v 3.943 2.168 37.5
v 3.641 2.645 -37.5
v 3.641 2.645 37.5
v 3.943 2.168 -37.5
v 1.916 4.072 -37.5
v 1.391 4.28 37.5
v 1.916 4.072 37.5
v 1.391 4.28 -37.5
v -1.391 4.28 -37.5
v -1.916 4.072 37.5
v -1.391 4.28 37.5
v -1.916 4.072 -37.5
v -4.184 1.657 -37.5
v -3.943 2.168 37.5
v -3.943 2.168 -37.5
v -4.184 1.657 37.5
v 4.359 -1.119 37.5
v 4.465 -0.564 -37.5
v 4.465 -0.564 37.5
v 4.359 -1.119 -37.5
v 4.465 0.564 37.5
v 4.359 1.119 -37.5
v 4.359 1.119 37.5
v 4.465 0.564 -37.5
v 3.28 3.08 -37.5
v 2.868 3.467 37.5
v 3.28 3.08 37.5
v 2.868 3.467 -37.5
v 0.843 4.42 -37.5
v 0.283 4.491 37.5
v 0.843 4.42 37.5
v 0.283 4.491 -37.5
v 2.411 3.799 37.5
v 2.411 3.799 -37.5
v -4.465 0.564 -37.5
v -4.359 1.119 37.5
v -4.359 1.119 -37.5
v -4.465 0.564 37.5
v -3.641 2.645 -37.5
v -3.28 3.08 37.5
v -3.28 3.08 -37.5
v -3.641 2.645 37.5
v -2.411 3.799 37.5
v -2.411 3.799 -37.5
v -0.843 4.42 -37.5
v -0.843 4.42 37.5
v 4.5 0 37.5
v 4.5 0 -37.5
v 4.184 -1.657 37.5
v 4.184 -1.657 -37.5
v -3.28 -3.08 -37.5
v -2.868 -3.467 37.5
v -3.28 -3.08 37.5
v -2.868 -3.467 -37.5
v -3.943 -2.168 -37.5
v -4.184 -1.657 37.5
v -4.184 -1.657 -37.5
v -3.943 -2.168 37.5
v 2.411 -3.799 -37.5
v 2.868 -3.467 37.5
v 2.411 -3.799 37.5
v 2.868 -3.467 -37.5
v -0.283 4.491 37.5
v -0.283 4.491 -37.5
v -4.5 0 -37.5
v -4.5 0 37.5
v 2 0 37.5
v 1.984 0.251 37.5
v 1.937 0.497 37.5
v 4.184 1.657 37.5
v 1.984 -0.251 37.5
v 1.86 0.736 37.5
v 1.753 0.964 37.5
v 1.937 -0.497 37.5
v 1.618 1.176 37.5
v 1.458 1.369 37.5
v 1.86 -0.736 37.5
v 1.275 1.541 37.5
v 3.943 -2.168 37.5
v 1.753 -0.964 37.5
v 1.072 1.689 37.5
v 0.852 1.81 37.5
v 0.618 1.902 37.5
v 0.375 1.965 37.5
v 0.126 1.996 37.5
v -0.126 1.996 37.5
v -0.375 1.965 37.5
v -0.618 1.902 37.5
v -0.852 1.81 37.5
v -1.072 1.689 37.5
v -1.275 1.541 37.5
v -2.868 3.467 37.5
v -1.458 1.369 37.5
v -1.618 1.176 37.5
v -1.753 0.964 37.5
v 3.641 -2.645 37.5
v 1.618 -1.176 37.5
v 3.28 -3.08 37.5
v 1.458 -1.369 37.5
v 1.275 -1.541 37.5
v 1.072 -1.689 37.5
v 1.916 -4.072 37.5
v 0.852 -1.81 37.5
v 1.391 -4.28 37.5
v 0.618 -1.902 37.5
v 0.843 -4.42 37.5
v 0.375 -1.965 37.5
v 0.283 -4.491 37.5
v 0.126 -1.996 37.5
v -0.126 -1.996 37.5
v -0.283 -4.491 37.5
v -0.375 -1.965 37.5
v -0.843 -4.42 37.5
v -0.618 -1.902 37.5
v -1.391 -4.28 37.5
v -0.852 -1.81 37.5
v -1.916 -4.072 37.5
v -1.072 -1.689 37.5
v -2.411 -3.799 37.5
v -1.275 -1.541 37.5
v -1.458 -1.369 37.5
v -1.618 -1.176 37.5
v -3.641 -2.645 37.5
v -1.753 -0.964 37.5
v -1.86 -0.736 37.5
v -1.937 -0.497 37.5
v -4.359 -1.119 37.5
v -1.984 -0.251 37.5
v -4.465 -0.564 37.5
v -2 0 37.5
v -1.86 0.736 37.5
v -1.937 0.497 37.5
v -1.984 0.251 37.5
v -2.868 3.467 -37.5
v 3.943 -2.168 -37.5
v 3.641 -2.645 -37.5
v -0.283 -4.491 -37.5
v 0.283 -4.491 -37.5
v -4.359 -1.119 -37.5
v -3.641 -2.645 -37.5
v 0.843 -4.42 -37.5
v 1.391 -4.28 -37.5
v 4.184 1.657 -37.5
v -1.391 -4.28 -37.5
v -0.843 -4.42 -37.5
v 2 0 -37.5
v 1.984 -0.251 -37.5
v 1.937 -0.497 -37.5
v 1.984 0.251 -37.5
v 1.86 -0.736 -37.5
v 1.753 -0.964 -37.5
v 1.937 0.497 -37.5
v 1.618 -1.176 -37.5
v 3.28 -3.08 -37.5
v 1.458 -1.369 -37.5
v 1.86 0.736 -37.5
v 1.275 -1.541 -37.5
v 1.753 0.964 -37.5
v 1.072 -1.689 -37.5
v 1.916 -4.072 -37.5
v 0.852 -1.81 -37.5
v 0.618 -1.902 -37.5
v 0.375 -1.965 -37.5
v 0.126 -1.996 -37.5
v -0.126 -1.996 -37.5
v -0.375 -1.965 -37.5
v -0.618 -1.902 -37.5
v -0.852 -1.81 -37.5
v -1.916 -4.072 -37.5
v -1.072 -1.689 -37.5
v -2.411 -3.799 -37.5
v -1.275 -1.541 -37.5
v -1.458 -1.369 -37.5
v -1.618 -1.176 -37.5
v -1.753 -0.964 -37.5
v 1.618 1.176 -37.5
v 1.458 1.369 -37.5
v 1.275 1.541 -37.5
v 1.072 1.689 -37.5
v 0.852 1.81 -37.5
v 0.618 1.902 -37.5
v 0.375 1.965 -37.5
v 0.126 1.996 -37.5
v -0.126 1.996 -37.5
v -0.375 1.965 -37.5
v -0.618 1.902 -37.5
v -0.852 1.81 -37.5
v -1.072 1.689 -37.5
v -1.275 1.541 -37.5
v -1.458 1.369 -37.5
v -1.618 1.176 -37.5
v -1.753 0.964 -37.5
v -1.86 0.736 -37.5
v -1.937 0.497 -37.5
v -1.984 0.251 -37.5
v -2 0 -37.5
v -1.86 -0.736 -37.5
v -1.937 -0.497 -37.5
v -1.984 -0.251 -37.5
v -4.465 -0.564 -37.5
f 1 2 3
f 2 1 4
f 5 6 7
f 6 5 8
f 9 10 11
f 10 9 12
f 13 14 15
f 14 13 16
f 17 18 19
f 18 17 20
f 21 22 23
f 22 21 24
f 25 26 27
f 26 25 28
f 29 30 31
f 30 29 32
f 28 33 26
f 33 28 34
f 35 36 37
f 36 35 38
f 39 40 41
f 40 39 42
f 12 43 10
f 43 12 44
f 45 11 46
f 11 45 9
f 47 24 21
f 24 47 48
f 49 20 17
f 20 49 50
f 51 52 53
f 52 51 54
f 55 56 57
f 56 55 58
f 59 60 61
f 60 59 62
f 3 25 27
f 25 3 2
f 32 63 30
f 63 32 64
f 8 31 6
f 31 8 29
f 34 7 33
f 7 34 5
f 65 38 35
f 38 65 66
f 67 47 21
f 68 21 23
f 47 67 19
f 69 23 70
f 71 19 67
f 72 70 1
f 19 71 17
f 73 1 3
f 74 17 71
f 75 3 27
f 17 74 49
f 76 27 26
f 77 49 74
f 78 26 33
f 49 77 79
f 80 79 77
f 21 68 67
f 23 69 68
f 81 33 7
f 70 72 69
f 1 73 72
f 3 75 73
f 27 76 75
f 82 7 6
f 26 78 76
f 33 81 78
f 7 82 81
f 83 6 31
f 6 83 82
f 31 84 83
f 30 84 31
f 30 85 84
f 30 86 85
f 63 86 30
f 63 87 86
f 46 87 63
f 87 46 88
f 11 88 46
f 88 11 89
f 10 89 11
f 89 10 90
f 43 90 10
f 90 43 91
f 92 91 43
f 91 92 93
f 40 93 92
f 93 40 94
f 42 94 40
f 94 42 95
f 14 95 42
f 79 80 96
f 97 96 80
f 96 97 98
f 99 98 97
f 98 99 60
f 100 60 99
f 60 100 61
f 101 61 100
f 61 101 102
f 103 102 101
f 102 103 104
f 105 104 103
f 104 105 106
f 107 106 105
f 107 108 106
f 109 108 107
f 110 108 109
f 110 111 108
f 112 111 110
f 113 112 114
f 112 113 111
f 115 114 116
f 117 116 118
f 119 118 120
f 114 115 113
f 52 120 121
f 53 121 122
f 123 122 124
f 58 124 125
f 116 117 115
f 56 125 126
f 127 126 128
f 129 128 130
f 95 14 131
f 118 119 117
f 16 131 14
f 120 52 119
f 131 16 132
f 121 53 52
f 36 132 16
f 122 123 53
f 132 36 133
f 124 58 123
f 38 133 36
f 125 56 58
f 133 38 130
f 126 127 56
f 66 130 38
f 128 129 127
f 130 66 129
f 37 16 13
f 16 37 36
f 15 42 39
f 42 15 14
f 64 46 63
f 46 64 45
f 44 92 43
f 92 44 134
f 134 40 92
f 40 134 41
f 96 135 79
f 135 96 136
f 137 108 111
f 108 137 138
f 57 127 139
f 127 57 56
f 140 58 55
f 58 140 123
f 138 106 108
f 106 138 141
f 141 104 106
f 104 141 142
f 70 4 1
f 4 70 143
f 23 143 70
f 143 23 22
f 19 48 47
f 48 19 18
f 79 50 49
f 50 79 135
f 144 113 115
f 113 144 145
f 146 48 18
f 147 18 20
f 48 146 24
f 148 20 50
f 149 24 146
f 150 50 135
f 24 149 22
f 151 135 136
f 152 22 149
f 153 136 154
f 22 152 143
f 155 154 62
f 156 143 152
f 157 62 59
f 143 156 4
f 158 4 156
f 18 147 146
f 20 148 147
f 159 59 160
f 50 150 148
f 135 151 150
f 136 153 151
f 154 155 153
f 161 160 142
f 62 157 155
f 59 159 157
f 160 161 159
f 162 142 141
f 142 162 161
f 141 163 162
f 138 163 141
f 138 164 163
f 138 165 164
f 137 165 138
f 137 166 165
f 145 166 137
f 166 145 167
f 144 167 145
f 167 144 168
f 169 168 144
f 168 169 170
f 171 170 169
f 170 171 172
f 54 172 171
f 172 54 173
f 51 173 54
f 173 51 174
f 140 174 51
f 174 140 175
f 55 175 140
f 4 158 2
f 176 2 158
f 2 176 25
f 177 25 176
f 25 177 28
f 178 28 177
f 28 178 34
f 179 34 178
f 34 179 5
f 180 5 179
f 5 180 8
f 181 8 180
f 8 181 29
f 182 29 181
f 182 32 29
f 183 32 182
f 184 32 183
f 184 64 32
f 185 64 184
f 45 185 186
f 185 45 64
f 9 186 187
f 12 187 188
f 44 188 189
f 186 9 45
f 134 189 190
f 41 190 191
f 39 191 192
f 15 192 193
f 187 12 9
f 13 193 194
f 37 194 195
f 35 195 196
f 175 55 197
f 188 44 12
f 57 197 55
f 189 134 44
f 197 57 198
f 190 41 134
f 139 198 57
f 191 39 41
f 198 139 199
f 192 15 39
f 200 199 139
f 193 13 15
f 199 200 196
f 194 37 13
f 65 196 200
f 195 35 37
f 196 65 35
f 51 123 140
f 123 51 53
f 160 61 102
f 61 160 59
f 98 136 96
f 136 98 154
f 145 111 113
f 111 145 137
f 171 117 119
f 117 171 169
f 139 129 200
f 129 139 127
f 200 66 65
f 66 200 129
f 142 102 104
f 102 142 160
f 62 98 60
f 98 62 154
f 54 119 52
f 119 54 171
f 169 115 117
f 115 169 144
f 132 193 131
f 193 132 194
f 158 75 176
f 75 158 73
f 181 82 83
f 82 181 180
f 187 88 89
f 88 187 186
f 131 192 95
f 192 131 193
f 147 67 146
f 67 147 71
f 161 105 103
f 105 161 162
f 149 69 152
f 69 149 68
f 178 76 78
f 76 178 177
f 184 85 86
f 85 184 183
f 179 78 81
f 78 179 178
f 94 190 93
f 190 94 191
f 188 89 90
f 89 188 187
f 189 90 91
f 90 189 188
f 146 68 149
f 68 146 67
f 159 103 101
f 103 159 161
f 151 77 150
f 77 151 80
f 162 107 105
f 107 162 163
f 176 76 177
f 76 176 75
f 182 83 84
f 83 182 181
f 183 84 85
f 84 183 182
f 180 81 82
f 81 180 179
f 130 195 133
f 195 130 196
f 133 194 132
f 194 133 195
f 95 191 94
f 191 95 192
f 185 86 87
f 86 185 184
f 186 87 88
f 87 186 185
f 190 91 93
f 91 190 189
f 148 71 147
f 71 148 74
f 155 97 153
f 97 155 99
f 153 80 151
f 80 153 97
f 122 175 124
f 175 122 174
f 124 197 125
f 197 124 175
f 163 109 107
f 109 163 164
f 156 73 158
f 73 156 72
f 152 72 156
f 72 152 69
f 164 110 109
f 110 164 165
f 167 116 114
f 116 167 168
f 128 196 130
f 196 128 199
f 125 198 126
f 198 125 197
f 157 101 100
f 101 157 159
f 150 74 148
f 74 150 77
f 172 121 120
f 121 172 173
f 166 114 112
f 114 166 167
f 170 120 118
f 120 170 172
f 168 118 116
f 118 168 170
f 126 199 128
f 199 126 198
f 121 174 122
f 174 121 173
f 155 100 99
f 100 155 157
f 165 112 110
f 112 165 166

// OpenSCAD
$fn = 50;


difference() {
	union() {
		translate(v = [0, 0, -37.5000000000]) {
			cylinder(h = 75, r = 4.5000000000);
		}
	}
	union() {
		translate(v = [0, 0, -100.0000000000]) {
			cylinder(h = 200, r = 2);
		}
	}
}
